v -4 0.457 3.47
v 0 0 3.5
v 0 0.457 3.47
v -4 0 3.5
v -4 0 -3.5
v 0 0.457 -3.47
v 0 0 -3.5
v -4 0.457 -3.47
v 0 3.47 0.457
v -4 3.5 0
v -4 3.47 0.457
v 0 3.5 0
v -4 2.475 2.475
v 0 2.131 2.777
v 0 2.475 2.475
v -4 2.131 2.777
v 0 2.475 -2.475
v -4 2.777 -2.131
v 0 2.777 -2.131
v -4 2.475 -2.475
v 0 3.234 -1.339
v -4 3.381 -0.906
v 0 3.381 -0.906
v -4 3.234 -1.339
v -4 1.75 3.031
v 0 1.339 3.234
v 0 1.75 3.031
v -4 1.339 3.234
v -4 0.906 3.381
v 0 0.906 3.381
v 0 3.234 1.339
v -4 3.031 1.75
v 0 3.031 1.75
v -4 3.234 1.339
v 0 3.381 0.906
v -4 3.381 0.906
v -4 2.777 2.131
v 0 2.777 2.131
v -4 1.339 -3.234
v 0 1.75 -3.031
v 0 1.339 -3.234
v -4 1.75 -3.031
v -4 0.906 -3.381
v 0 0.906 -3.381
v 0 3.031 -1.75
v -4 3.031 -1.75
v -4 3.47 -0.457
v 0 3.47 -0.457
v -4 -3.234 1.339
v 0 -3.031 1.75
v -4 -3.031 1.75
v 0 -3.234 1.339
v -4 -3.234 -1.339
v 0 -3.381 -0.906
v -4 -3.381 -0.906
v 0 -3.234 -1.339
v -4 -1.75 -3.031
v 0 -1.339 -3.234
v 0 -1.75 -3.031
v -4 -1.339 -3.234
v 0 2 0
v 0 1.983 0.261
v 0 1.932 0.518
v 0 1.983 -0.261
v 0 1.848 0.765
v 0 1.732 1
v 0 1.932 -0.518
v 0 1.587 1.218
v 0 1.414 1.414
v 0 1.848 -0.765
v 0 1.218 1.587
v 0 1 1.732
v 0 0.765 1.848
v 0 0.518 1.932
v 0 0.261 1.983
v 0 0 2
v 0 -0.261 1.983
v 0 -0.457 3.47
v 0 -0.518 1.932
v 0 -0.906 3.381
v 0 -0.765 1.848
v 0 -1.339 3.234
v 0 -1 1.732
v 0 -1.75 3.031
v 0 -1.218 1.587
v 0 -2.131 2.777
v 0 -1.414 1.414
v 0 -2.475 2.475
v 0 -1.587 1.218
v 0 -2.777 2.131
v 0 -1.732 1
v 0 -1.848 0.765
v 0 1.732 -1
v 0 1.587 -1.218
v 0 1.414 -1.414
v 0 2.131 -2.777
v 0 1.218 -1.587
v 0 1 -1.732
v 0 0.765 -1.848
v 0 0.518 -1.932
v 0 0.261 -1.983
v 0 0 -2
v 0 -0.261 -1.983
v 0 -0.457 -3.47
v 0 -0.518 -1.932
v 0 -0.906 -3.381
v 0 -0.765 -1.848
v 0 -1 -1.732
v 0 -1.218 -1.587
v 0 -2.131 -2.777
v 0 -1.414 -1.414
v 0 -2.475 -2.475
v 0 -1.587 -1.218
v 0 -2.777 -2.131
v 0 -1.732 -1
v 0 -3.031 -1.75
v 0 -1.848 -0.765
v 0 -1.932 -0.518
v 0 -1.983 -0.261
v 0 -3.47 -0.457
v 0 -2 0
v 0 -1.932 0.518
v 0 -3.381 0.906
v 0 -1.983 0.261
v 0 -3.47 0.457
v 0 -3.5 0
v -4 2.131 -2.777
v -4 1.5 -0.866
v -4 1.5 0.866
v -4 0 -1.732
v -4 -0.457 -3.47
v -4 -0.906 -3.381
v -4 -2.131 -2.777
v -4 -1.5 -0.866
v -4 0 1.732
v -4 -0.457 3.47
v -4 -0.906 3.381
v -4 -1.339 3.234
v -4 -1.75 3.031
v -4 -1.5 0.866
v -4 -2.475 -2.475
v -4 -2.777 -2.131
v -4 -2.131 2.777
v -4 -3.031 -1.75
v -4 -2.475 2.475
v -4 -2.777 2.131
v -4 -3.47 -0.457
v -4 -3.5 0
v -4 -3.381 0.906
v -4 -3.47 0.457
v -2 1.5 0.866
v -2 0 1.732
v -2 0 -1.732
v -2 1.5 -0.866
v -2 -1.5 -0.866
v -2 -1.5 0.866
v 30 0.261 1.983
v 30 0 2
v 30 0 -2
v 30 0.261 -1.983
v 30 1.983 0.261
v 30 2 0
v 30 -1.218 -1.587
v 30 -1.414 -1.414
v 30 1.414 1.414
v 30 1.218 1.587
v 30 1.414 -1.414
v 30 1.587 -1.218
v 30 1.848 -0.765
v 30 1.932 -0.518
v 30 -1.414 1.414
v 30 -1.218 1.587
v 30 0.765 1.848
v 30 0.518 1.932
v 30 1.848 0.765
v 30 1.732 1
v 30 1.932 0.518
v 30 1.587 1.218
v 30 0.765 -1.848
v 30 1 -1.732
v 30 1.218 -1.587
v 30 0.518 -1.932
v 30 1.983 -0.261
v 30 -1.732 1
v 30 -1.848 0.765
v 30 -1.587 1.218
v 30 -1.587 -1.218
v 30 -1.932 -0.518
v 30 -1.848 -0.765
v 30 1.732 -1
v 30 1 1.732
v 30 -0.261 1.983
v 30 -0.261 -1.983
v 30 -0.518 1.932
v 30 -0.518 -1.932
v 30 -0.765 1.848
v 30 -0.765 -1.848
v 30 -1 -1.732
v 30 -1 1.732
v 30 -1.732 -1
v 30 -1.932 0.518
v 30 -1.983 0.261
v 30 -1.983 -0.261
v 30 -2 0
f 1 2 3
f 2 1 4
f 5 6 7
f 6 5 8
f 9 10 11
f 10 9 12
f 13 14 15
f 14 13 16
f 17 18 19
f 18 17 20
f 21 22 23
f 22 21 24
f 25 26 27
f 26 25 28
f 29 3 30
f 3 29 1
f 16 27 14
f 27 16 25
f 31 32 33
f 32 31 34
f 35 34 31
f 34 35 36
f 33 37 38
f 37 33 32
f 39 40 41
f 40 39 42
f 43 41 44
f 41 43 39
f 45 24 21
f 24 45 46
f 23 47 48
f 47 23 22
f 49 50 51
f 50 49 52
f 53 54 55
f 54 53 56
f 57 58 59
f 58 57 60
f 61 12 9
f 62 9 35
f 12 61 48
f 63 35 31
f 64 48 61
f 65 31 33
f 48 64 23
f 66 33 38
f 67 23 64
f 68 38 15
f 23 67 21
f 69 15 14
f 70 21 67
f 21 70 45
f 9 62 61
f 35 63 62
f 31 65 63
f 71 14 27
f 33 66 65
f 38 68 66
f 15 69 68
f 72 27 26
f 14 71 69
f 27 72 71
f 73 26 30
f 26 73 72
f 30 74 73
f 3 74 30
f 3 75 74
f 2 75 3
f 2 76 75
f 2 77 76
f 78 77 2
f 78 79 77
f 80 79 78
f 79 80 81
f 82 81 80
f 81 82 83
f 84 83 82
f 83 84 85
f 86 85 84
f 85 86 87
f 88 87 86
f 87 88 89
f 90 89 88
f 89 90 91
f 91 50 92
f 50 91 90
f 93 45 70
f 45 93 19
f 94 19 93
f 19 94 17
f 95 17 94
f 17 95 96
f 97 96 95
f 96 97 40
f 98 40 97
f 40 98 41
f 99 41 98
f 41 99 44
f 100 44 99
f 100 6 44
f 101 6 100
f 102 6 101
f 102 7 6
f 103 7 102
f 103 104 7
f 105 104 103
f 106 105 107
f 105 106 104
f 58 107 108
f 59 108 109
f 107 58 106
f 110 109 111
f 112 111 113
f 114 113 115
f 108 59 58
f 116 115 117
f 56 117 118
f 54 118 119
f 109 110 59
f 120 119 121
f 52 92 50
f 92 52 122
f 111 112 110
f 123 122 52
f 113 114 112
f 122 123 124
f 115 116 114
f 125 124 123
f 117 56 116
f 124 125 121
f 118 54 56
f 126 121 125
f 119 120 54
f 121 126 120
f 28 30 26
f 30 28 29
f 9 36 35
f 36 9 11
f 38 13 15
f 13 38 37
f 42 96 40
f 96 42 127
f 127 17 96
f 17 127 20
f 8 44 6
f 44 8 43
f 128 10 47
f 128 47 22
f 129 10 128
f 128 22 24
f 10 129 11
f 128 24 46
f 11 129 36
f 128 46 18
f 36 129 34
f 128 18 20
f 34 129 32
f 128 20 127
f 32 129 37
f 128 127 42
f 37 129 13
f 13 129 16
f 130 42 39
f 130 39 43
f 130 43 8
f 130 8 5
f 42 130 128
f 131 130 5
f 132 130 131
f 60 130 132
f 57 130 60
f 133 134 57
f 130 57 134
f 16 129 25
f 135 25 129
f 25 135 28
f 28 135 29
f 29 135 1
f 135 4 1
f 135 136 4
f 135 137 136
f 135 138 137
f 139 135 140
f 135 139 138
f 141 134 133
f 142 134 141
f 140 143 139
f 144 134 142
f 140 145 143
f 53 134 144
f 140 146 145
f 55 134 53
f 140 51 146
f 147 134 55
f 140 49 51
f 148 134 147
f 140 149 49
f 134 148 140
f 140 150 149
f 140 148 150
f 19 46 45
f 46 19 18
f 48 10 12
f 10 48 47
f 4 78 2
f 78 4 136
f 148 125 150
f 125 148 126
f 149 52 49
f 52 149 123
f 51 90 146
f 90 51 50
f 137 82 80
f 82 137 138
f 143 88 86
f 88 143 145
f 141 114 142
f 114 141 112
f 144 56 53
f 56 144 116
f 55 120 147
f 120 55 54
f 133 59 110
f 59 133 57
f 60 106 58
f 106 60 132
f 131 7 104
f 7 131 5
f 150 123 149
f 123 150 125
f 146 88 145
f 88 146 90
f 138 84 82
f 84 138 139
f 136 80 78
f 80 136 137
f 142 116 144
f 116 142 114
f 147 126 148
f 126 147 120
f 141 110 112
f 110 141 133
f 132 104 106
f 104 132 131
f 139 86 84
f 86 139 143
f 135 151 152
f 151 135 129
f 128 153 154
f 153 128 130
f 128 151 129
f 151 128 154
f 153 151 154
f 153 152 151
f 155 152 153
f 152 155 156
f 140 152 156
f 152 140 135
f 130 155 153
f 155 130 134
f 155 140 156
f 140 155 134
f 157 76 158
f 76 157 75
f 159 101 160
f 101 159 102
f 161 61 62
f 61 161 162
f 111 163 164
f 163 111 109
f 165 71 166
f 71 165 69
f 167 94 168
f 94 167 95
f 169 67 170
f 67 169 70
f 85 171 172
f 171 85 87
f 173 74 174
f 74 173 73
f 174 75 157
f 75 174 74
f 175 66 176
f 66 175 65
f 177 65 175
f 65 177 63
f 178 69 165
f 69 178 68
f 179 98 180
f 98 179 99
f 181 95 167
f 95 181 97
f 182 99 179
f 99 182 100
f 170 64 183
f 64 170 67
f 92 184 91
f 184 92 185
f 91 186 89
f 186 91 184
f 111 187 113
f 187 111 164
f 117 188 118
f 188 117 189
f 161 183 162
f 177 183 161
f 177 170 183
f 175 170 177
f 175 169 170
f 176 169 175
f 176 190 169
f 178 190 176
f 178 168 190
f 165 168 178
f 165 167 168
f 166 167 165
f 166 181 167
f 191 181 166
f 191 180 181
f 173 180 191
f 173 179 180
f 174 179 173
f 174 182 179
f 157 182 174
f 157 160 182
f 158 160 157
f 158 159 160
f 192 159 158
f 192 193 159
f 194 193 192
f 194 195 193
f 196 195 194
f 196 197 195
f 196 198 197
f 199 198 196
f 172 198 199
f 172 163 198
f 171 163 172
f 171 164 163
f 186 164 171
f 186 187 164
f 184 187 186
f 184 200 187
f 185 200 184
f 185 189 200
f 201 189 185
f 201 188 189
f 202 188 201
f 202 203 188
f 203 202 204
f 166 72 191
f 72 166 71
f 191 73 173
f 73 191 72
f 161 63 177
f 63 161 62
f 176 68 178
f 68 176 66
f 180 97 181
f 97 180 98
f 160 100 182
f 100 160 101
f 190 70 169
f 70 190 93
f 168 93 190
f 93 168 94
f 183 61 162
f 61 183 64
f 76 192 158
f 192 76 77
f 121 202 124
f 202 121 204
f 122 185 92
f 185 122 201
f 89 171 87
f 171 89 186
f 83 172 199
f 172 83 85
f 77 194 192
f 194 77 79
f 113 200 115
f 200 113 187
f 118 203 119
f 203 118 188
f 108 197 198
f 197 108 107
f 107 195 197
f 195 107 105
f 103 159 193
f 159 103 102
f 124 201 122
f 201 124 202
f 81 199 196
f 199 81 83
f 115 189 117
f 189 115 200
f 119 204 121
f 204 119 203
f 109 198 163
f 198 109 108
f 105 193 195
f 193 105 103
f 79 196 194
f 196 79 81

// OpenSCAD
// file: ../../lib/nutsnbolts/data-access.scad
// Norm Nuts and Bolts - a OpenSCAD library
// Copyright (C) 2012  Johannes Kneer

// This program is free software: you can redistribute it and/or modify
// it under the terms of the GNU General Public License as published by
// the Free Software Foundation, either version 3 of the License, or
// (at your option) any later version.

// This program is distributed in the hope that it will be useful,
// but WITHOUT ANY WARRANTY; without even the implied warranty of
// MERCHANTABILITY or FITNESS FOR A PARTICULAR PURPOSE.  See the
// GNU General Public License for more details.

// You should have received a copy of the GNU General Public License
// along with this program.  If not, see <http://www.gnu.org/licenses/>.


// DATABASE ACCESS FUNCTIONS AND CONSTANTS



// == CONSTANTS ==

// screw table access keys
_NB_S_DESC            = 0;
_NB_S_FAMKEY			    = 1;
_NB_S_LENGTH          = 2;
_NB_S_NOTHREAD_LENGTH = 3;

_NB_F_DESC			      = 0;
_NB_F_OUTER_DIA       = 1;
_NB_F_INNER_DIA       = 2;
_NB_F_LEAD            = 3;
_NB_F_KEY             = 4;
_NB_F_KEY_DEPTH       = 5;
_NB_F_HEAD_HEIGHT     = 6;
_NB_F_HEAD_DIA        = 7;
_NB_F_NUT_KEY         = 8;
_NB_F_NUT_HEIGHT      = 9;
_NB_F_PITCH_FINE      = 10;
_NB_F_PITCH_MEDIUM    = 11;
_NB_F_PITCH_COARSE    = 12;


// == FUNCTIONS ==

// _get_screw("descriptor")   with descriptor = M8x25
//   find the line for a general object in the data matrix

function _get_screw(n) = data_screw[search([n], data_screw)[0]];
function _get_screw_fam(n) = data_screw_fam[search([_get_screw(n)[_NB_S_FAMKEY]], data_screw_fam)[0]];

function _get_fam(n) = data_screw_fam[search([n], data_screw_fam)[0]];


// _get_XXXXX("descriptor") functions
// find a single property in the database

function _get_desc(n)        = _get_screw(n)[_NB_S_DESC];
function _get_famkey(n)         = _get_screw(n)[_NB_S_FAMKEY];
function _get_length(n)      = _get_screw(n)[_NB_S_LENGTH];
function _get_nt_length(n)   = _get_screw(n)[_NB_S_NOTHREAD_LENGTH];

function _get_outer_dia(n)   = _get_screw_fam(n)[_NB_F_OUTER_DIA];
function _get_inner_dia(n)   = _get_screw_fam(n)[_NB_F_INNER_DIA];
function _get_lead(n)        = _get_screw_fam(n)[_NB_F_LEAD];
function _get_head_height(n) = _get_screw_fam(n)[_NB_F_HEAD_HEIGHT];
function _get_head_dia(n)    = _get_screw_fam(n)[_NB_F_HEAD_DIA];
function _get_nut_key(n)     = _get_screw_fam(n)[_NB_F_NUT_KEY];
function _get_nut_height(n)  = _get_screw_fam(n)[_NB_F_NUT_HEIGHT];
function _get_fine_pitch(n)  = _get_screw_fam(n)[_NB_F_PITCH_FINE];
function _get_medium_pitch(n)  = _get_screw_fam(n)[_NB_F_PITCH_MEDIUM];
function _get_coarse_pitch(n)  = _get_screw_fam(n)[_NB_F_PITCH_COARSE];
// main file
/**********************************************************************************************************************
 **
 ** parts/vitamins/screw_M4x30.scad
 **
 ** This file renders a screw of the dimensions specified by the file name.
 **
 **********************************************************************************************************************/

include <../../lib/nutsnbolts/cyl_head_bolt.scad>;

$fn = 48;
rotate([0, -90, 0])
	screw("M4x30"); 
